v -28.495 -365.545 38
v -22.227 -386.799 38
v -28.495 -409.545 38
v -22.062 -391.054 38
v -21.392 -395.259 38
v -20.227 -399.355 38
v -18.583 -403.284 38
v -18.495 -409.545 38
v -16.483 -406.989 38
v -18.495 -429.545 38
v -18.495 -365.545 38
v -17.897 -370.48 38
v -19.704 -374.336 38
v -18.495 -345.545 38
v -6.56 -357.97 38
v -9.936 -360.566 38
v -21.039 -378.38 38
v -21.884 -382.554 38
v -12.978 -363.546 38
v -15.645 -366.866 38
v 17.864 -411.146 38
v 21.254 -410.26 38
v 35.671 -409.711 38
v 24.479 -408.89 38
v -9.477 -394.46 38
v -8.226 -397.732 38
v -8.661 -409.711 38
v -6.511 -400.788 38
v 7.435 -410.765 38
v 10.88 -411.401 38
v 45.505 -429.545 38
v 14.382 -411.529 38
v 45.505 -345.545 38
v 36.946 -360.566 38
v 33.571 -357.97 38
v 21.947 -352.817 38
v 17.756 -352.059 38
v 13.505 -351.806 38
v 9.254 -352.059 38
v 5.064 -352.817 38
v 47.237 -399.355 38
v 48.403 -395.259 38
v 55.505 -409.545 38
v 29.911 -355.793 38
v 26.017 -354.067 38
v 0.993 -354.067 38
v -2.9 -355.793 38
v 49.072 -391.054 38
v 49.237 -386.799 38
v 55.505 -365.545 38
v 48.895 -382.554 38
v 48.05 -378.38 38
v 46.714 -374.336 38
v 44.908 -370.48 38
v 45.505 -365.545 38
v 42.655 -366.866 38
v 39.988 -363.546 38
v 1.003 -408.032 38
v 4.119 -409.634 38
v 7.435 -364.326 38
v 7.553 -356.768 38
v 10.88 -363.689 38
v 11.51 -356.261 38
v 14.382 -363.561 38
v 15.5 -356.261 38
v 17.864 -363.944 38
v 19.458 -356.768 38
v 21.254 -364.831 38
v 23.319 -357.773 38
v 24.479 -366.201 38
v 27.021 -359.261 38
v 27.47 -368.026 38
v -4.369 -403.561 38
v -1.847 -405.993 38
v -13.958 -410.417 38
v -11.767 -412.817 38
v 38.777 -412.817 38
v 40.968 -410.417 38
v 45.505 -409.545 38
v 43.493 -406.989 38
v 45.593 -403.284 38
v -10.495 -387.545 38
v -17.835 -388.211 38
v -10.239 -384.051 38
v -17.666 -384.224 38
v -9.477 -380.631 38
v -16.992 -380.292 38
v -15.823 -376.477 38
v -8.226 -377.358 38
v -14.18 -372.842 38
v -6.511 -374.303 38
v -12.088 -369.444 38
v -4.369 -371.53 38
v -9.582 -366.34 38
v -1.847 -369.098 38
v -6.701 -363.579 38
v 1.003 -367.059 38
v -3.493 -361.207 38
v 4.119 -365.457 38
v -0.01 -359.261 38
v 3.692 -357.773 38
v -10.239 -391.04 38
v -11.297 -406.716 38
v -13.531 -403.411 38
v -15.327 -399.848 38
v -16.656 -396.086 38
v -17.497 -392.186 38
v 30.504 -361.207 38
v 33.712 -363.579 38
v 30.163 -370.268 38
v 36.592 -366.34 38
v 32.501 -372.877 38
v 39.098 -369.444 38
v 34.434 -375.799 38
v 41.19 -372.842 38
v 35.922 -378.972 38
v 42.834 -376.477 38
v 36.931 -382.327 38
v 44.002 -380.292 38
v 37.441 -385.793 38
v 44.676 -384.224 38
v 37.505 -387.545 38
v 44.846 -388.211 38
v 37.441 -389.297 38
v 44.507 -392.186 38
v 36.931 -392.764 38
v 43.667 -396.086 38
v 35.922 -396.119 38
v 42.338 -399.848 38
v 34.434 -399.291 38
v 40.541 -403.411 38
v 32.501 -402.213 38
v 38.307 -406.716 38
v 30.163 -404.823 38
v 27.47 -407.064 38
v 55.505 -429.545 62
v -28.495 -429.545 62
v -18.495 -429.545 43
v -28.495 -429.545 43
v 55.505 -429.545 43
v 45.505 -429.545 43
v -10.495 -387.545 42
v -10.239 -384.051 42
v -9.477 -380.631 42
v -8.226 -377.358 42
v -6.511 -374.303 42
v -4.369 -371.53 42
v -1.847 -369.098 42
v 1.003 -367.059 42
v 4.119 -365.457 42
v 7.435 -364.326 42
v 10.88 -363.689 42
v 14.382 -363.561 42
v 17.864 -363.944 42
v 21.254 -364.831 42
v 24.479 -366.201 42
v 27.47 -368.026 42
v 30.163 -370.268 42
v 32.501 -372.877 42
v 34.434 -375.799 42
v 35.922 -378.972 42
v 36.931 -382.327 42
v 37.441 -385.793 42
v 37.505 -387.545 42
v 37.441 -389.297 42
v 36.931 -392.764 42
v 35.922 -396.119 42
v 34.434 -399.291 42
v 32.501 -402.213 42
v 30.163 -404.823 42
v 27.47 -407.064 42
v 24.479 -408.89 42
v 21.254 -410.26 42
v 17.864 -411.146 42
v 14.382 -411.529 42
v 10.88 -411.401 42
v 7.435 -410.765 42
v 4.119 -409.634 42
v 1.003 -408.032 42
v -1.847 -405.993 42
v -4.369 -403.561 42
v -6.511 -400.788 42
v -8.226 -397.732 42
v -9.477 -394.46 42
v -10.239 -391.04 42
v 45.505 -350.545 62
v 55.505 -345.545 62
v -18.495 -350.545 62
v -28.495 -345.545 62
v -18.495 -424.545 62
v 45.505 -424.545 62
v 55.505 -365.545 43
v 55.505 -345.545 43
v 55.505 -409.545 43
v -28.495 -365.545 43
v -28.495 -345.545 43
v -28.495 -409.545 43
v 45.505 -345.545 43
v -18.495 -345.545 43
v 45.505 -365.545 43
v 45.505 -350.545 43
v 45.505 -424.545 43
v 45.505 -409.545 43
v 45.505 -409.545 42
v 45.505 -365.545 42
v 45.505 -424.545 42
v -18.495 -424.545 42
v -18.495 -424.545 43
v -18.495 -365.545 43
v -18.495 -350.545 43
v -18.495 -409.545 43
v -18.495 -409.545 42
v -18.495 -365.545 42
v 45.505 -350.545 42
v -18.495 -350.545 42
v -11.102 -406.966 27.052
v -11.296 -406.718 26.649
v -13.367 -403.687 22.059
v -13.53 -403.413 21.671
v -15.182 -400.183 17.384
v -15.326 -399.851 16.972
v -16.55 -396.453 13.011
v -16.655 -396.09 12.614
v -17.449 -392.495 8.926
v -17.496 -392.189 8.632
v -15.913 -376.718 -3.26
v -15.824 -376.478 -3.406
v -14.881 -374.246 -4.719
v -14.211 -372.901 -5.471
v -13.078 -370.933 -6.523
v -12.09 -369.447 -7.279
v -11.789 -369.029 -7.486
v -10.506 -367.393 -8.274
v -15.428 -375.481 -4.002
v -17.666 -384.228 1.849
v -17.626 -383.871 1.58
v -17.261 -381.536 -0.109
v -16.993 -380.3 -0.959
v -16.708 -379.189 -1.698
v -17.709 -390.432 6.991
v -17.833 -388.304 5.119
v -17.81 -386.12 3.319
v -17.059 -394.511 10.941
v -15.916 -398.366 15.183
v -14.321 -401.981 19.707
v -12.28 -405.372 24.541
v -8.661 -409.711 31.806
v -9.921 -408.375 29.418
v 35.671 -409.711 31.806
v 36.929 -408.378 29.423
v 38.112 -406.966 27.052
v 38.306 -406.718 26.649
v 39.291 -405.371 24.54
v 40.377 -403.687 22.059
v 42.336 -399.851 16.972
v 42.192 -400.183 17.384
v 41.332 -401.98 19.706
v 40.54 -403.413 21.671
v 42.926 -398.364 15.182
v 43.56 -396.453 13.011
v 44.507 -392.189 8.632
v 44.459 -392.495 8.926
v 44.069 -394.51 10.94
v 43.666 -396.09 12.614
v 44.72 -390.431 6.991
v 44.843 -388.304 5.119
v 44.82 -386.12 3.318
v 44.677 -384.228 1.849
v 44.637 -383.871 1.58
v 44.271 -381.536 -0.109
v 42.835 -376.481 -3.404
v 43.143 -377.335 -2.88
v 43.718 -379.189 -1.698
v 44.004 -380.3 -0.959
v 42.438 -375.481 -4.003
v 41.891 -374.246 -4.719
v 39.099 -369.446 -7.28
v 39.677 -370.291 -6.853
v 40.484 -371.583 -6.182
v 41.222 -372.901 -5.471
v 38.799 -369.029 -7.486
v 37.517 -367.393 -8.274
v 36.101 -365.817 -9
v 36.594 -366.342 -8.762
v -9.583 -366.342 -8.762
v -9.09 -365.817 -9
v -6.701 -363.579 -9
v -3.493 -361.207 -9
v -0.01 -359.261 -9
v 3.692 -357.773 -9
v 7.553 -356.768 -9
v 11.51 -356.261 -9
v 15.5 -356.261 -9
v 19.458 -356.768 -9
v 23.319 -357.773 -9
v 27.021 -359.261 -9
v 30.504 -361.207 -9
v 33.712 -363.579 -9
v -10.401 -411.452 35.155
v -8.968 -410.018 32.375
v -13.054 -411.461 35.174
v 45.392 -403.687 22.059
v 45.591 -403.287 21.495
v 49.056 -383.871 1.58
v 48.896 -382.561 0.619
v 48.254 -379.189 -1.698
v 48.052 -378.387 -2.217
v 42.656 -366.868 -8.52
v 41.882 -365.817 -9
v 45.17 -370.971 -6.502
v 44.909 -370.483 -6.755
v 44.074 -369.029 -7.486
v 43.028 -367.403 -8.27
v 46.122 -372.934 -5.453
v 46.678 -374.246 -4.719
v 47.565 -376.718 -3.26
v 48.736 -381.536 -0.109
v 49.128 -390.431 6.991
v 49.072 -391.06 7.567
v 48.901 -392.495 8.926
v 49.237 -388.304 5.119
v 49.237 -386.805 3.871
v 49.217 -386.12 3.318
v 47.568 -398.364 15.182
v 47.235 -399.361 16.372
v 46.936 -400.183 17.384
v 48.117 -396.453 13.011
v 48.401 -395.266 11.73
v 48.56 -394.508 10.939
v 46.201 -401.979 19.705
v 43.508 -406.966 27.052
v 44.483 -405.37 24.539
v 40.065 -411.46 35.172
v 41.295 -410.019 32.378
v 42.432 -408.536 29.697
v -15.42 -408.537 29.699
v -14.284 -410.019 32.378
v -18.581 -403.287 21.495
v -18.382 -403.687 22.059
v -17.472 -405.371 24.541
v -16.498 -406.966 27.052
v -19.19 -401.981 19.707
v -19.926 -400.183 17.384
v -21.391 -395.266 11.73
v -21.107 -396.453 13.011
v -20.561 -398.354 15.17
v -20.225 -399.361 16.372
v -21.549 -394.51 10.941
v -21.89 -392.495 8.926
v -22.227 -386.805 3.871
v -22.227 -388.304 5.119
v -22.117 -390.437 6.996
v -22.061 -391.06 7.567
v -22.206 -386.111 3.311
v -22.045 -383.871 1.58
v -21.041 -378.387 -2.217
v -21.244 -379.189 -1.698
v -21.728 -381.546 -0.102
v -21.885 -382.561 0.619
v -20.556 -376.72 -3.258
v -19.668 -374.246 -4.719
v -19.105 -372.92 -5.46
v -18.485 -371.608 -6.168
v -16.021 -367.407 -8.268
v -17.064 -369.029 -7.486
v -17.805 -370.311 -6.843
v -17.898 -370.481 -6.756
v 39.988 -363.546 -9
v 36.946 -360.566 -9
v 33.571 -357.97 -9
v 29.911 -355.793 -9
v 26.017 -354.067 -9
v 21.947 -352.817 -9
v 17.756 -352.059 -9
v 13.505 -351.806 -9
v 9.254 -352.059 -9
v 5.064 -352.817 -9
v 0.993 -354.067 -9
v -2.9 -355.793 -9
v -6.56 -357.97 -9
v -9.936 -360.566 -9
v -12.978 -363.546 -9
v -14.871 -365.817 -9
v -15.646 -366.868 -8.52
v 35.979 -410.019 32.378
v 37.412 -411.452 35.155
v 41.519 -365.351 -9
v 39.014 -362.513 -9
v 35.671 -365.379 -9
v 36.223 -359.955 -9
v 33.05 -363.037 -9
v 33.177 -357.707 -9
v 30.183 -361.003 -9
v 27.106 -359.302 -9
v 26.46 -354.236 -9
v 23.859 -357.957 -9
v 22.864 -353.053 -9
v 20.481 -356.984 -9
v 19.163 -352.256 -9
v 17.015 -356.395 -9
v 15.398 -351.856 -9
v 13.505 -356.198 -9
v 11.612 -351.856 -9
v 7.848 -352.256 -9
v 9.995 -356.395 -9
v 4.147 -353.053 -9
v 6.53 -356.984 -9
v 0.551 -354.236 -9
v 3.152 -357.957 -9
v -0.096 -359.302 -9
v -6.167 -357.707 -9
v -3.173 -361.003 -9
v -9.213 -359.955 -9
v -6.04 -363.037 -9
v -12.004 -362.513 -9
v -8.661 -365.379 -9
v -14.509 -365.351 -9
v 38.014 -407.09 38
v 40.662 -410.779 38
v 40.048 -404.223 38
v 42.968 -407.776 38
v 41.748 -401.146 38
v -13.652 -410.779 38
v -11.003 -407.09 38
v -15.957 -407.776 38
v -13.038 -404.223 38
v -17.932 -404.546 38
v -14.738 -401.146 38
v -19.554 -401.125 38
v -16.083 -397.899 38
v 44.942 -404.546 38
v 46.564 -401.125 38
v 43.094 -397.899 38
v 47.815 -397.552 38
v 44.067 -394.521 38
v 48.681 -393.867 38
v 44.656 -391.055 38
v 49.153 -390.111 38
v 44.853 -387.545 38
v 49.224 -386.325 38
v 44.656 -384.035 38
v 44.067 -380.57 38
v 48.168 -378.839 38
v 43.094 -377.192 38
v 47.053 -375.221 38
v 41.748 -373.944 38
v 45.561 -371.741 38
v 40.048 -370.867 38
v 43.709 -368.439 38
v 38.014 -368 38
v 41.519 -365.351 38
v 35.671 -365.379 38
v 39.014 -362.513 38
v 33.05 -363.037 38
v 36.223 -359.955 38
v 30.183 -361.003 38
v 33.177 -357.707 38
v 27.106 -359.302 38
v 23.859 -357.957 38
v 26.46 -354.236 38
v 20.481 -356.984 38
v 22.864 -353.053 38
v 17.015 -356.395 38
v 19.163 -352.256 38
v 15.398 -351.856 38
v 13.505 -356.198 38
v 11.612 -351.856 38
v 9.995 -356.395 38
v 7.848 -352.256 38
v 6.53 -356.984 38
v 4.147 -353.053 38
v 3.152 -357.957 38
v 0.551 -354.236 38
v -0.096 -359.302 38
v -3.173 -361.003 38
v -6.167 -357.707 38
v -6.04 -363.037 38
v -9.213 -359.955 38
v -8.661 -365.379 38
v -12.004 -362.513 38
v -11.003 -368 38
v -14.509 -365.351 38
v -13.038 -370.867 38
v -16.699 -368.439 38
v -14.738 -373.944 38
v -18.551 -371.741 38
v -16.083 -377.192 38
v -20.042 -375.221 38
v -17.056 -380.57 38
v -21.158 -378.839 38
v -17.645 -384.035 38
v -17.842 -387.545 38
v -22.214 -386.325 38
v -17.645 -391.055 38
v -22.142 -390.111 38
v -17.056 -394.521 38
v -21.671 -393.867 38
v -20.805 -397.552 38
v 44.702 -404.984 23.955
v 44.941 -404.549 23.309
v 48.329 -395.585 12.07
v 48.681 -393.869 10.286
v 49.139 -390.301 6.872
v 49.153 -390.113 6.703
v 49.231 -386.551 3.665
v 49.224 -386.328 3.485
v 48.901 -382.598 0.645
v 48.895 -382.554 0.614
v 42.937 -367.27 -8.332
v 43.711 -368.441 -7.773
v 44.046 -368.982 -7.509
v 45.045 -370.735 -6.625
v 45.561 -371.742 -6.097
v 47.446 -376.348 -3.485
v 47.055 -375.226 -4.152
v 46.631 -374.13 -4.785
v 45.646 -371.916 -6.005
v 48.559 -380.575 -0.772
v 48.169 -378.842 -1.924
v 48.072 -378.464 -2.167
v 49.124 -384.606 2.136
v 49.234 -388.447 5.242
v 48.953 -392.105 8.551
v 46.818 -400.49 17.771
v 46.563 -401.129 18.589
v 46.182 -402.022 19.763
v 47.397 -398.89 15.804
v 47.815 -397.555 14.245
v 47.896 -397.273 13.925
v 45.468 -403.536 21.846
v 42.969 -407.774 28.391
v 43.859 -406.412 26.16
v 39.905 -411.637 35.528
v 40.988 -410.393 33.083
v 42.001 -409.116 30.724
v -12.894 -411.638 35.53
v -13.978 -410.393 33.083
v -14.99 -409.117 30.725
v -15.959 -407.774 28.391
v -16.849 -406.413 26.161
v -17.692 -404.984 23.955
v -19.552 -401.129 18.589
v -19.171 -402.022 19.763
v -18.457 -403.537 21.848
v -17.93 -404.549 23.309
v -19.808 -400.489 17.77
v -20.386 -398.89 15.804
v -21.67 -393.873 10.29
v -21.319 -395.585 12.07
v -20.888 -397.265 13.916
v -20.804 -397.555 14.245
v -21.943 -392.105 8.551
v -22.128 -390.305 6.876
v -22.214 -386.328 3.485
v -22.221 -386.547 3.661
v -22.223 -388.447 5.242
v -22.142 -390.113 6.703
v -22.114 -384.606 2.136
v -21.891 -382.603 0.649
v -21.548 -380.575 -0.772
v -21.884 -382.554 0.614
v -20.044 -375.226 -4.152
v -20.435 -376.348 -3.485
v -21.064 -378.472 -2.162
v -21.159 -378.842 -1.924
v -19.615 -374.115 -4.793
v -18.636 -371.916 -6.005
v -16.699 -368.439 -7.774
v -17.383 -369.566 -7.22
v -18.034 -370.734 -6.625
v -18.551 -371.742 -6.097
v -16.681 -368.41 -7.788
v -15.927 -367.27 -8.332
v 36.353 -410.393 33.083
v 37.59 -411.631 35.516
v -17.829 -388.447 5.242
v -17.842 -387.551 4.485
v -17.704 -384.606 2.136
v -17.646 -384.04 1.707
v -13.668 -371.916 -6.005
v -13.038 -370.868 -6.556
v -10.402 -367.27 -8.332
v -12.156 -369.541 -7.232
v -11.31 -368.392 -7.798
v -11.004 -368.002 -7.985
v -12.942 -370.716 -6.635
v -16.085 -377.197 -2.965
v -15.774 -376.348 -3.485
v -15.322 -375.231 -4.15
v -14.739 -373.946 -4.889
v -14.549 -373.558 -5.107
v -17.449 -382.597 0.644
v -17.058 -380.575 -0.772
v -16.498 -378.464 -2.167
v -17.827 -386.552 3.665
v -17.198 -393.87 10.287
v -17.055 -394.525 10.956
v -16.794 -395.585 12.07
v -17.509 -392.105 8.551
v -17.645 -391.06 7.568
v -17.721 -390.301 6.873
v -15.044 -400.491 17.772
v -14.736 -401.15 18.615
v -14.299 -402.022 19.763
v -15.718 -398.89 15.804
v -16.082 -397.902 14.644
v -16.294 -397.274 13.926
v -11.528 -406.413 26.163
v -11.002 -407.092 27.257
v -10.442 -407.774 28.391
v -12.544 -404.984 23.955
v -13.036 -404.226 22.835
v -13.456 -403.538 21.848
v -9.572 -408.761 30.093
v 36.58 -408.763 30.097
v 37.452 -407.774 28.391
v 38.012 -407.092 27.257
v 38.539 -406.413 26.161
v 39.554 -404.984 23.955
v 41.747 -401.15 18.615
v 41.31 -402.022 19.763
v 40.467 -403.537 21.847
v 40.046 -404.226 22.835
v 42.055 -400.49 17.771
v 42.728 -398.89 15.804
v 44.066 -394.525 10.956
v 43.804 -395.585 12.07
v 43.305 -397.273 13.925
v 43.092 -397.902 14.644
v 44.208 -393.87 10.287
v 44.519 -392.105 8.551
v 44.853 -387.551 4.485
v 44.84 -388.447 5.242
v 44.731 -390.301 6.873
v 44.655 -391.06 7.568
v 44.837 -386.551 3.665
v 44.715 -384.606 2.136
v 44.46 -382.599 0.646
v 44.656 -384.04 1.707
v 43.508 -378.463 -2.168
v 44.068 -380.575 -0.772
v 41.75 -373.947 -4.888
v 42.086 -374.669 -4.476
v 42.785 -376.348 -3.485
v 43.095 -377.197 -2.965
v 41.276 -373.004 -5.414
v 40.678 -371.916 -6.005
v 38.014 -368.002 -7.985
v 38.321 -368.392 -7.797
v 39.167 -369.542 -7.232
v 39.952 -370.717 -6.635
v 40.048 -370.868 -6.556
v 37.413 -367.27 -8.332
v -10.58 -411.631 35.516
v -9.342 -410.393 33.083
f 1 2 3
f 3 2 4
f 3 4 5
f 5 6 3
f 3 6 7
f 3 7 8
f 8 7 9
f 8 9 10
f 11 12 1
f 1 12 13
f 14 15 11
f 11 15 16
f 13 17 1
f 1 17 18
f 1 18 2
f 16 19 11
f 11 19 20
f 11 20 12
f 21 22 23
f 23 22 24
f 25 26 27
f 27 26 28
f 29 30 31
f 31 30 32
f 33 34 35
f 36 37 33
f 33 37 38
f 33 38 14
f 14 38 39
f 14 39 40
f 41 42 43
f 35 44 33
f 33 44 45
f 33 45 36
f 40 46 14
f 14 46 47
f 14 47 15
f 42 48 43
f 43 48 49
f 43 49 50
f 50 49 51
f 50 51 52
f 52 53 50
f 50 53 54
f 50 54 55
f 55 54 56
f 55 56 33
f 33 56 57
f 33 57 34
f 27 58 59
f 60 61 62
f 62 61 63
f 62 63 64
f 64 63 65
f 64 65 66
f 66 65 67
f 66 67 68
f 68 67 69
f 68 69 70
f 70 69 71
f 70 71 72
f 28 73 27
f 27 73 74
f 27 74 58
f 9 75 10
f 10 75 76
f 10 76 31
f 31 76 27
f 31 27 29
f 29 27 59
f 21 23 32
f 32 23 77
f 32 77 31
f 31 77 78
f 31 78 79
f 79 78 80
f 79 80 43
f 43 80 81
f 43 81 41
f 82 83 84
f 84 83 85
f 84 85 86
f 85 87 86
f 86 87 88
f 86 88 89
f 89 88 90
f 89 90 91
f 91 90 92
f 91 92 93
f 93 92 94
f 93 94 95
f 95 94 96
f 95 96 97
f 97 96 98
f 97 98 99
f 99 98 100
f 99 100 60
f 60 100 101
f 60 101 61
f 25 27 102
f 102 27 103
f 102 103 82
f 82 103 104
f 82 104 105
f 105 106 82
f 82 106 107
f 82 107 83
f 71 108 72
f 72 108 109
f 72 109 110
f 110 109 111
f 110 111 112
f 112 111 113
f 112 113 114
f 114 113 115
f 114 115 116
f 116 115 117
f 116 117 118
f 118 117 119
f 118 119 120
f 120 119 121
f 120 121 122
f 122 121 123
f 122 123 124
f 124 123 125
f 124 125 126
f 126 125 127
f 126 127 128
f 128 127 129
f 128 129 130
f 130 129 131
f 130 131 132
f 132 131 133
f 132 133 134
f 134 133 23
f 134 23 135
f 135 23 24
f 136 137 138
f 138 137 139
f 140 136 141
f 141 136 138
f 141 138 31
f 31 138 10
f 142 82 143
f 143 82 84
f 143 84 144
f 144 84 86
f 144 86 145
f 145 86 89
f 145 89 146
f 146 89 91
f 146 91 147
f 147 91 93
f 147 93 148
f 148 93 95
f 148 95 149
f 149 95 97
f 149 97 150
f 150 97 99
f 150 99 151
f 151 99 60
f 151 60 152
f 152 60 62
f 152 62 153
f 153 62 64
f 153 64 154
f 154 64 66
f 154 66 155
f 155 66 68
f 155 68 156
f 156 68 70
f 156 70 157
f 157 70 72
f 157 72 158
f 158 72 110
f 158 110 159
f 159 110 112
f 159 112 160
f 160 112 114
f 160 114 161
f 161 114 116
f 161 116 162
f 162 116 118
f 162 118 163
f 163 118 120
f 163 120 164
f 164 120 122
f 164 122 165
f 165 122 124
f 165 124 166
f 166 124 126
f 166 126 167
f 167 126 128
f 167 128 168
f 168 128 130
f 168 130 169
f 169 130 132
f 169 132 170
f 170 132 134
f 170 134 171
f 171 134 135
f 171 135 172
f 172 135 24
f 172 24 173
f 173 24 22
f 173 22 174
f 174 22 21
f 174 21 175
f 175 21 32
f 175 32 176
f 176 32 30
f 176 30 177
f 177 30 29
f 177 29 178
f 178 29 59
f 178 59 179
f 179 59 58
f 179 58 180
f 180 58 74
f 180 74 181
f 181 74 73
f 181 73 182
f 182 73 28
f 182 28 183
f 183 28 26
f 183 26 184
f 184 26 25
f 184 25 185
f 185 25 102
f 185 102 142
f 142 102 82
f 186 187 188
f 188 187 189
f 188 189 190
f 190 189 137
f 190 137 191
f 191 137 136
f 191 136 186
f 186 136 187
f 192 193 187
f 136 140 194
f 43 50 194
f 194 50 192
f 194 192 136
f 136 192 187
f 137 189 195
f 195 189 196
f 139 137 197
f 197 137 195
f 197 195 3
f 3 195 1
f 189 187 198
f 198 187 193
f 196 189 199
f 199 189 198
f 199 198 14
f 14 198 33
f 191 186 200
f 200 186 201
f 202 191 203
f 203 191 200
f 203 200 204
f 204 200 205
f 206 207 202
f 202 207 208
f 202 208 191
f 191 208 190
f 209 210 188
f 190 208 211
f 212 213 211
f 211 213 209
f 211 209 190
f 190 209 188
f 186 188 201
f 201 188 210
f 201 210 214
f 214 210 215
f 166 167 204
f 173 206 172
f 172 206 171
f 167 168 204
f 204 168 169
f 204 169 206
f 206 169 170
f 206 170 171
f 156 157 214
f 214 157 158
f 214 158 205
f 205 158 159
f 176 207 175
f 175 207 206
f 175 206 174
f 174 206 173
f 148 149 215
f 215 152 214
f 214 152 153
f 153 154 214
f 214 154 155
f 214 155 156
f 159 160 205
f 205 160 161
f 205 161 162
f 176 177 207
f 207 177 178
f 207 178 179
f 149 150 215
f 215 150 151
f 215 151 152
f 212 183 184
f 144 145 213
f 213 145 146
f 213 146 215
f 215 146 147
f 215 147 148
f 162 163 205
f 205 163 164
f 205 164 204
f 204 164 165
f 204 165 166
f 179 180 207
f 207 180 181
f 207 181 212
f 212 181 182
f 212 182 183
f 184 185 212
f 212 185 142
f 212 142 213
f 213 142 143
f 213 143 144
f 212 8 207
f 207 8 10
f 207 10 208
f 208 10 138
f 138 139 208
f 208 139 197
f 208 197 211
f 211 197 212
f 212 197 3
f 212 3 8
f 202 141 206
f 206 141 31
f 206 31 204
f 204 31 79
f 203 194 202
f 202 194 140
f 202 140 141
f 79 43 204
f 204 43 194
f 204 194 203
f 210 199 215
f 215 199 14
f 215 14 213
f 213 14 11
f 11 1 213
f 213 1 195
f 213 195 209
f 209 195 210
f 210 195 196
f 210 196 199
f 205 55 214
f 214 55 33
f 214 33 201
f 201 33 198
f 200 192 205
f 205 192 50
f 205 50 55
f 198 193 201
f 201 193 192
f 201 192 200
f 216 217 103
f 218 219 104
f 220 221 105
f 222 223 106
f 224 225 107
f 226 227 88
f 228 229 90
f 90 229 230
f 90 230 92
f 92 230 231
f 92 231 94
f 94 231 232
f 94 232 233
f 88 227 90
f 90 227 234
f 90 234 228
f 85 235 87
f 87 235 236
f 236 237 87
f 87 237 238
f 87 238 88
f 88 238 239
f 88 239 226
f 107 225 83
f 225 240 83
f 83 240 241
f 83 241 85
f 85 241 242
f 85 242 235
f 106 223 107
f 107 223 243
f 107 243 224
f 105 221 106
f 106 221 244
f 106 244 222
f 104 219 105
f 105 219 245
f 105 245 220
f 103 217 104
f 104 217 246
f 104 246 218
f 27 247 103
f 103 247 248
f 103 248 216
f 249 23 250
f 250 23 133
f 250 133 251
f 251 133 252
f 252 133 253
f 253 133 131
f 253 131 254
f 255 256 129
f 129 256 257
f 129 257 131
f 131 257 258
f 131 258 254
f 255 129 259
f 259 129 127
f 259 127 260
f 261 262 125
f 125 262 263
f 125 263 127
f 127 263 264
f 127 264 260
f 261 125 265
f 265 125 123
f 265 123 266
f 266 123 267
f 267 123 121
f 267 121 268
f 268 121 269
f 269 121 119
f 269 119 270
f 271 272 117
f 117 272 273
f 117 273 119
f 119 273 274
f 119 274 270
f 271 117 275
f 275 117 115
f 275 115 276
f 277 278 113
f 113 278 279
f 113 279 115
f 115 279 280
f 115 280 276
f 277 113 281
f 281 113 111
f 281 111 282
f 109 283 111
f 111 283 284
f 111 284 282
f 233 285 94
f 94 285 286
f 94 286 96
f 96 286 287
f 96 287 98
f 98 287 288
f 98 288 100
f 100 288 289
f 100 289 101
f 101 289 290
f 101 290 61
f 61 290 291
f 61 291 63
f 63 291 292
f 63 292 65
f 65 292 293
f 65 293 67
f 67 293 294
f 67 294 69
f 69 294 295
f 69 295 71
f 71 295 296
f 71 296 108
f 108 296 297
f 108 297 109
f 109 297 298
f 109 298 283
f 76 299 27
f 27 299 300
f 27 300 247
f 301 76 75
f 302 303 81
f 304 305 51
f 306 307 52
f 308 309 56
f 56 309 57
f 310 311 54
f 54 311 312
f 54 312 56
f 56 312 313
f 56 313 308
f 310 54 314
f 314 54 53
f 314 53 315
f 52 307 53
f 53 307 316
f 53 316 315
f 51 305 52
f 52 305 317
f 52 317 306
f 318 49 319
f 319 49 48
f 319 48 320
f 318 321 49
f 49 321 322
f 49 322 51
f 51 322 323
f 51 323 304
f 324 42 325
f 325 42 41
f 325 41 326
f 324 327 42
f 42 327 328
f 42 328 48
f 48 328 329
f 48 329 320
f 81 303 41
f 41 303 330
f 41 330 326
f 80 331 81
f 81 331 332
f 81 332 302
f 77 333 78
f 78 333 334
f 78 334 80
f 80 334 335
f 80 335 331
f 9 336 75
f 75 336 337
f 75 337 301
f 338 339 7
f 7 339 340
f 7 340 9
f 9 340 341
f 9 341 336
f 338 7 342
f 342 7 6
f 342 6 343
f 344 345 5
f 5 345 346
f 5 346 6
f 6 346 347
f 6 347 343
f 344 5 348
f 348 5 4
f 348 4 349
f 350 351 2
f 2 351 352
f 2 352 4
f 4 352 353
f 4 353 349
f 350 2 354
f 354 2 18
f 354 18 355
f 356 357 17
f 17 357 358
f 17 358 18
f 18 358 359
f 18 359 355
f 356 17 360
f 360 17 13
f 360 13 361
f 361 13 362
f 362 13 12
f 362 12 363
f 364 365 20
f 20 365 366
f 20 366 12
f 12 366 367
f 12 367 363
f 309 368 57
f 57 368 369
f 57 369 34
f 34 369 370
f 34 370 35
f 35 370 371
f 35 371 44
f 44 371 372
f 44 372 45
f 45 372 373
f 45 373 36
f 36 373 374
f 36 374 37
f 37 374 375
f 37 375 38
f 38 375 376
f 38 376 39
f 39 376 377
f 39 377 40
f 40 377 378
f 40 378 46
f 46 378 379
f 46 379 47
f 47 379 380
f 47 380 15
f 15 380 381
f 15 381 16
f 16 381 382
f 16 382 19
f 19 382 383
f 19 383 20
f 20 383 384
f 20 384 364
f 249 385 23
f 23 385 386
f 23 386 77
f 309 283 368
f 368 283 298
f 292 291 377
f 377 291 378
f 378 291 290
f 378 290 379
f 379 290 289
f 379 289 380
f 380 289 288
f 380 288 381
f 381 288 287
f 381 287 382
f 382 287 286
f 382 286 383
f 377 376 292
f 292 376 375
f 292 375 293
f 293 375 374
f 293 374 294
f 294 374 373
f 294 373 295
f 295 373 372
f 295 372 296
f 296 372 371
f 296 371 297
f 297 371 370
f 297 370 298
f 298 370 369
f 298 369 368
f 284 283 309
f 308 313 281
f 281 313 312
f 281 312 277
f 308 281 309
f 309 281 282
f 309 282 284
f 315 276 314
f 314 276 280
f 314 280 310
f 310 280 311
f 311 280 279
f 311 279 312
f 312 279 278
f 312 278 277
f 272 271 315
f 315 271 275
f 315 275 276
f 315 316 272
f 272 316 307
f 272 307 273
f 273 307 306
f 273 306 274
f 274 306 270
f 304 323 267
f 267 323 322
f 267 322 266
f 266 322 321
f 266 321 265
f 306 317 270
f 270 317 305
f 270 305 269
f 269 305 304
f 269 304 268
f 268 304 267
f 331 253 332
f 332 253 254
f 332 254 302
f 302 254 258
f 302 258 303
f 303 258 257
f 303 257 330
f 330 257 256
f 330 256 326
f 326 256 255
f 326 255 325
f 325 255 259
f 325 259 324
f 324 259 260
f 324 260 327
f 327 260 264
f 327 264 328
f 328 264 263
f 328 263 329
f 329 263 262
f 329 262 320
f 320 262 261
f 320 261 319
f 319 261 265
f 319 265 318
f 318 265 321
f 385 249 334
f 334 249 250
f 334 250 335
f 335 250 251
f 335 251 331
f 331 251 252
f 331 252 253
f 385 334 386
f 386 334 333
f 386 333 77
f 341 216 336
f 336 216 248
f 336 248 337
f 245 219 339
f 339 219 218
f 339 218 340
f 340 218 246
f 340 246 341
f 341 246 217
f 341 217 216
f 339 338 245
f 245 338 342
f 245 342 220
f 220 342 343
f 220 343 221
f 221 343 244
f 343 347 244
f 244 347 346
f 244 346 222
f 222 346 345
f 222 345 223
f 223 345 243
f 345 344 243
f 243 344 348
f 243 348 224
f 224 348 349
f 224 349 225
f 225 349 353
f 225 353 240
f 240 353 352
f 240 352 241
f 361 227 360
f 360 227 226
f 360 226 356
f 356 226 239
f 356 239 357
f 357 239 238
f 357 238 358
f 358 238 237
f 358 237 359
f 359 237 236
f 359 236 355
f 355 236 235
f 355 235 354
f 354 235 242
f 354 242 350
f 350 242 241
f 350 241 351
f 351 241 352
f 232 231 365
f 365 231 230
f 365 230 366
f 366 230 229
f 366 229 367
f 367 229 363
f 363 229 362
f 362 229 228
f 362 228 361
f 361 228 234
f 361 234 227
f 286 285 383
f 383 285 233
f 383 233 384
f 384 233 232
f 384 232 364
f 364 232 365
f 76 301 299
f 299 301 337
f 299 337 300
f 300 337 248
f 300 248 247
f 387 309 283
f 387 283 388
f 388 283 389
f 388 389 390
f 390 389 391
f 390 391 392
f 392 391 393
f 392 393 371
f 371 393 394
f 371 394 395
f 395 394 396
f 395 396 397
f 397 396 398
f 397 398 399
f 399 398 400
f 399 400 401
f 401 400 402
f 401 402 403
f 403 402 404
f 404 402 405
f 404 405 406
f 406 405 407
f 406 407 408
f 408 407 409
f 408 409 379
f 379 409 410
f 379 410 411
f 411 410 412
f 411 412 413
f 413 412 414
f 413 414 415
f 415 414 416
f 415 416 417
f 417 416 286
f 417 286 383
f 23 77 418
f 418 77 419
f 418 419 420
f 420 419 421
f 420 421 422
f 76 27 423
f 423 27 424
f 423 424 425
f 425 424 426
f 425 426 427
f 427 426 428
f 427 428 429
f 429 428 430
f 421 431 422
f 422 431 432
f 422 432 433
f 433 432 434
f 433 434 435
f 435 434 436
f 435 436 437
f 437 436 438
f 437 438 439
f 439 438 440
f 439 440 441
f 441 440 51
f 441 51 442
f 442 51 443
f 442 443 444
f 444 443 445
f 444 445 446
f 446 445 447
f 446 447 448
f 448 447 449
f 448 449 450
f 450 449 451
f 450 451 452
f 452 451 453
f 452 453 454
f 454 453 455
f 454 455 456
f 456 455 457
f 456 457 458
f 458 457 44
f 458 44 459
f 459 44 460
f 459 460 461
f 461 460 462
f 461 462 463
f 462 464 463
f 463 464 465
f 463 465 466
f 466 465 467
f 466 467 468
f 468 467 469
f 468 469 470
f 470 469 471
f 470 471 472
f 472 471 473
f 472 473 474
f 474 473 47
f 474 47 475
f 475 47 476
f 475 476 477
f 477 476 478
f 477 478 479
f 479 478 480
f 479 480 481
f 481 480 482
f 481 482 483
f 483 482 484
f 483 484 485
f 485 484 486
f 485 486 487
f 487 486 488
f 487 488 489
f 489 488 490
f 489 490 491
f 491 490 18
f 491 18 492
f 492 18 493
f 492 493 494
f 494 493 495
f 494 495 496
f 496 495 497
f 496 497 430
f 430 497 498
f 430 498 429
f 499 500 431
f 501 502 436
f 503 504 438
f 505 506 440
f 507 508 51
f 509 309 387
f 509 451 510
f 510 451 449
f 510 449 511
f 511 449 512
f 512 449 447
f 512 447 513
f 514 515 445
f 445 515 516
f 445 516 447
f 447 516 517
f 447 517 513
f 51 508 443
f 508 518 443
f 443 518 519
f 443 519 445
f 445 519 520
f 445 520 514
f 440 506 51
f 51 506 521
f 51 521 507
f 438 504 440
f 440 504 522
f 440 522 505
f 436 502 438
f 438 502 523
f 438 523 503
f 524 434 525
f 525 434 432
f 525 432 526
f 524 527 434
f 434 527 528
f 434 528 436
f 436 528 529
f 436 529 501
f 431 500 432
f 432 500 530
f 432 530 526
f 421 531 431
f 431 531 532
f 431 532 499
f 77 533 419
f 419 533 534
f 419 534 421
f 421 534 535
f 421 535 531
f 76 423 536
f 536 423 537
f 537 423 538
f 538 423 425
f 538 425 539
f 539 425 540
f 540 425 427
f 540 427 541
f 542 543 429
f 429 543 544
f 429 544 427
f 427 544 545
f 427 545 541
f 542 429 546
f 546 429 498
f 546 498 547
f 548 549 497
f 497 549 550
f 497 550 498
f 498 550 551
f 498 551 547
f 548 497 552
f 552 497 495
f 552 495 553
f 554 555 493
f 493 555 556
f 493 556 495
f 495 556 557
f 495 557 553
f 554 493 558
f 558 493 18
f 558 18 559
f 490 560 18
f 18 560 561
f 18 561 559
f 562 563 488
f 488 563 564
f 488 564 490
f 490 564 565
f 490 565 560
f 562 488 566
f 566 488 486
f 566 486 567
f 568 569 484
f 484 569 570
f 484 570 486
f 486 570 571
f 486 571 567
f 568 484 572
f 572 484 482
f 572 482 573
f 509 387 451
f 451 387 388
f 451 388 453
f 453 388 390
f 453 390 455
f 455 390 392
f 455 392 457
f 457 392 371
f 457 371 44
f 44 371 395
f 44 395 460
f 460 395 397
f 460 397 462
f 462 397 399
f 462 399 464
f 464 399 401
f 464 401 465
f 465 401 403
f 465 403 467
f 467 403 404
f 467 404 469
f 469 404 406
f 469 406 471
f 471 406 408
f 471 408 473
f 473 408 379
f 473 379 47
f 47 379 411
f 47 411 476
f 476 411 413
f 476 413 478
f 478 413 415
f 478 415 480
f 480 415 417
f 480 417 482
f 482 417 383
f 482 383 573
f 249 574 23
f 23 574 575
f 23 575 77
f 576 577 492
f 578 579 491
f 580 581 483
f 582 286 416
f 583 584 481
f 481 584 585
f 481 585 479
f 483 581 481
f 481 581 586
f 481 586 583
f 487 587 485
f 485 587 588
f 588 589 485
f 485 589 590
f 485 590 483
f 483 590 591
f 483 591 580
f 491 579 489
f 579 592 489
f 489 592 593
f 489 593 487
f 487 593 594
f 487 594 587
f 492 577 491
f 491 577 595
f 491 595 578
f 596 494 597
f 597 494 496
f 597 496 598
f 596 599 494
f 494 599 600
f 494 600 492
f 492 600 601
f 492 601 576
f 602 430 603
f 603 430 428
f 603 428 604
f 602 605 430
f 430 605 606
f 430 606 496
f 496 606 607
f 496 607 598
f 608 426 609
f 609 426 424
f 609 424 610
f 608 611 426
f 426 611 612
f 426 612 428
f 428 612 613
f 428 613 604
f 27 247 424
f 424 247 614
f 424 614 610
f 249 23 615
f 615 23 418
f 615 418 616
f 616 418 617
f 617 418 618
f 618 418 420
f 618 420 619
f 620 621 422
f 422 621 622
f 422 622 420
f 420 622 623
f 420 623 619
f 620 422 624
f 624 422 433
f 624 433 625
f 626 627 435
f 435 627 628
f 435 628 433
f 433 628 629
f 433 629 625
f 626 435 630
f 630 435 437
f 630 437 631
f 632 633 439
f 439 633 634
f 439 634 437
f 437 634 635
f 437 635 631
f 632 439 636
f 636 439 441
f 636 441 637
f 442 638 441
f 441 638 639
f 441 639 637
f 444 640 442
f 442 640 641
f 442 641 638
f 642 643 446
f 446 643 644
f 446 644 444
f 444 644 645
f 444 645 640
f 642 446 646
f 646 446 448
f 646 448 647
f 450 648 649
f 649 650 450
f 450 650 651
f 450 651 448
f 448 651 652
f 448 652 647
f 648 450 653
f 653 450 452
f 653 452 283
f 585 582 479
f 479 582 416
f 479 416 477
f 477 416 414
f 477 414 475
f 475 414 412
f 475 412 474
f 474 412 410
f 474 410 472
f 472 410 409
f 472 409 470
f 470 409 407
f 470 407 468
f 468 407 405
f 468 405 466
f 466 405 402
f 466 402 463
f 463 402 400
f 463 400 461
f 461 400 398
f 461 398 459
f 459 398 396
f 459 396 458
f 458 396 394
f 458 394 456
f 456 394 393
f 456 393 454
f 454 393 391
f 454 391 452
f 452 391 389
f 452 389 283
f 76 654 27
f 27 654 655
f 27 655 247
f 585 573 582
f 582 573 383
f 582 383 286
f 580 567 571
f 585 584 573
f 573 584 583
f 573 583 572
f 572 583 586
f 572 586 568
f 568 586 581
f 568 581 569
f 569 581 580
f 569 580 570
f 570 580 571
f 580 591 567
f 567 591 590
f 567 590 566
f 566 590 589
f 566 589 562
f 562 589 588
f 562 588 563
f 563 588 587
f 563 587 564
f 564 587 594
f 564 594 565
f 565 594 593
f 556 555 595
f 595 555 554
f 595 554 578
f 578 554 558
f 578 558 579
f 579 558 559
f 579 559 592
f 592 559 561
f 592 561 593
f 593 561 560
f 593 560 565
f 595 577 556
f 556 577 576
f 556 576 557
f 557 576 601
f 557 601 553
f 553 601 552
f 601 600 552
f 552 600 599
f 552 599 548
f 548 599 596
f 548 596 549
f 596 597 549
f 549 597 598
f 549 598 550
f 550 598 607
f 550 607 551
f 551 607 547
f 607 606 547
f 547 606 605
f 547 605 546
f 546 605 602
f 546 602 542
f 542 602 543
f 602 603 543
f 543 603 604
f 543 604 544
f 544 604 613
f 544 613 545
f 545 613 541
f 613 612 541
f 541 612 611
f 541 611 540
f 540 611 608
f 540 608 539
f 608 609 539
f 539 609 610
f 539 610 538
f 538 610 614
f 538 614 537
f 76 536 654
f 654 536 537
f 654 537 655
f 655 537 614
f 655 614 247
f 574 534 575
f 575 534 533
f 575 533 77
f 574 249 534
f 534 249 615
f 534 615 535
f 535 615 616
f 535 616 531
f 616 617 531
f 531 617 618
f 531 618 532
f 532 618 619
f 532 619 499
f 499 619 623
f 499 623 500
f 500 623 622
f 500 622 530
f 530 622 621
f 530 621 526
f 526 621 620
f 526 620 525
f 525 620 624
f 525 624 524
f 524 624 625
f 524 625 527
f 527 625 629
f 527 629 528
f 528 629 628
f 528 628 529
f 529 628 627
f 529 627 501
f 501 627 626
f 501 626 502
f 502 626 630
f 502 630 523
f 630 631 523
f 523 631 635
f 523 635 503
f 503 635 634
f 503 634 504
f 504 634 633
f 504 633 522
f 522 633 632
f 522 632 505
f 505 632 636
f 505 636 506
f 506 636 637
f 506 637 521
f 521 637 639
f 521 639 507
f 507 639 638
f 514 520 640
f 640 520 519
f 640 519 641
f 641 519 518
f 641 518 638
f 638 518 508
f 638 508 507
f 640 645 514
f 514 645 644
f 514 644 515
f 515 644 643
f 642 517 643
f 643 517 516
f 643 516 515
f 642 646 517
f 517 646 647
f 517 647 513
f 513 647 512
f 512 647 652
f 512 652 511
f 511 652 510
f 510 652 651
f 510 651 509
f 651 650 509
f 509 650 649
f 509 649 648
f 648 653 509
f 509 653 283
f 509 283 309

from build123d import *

# Parameters (mm, degrees)
SKETCH2_W           = 350
SKETCH2_H           = 1050
SKETCH2_R           = 100
BOSS_EXTRUDE2_DEPTH = 100
SCALE1_SCALE        = 0.24
SKETCH6_W           = 84
SKETCH6_H           = 168
CUT_EXTRUDE3_DEPTH  = 80
SKETCH11_W          = 64
SKETCH11_H          = 74
CUT_EXTRUDE8_DEPTH  = 20
SKETCH12_W          = 10
SKETCH12_H          = 5
BOSS_EXTRUDE6_DEPTH = 20
SKETCH13_W          = 10
SKETCH13_H          = 5
BOSS_EXTRUDE7_DEPTH = 20
SKETCH14_W          = 10
SKETCH14_H          = 5
CUT_EXTRUDE9_DEPTH  = 40
SKETCH15_W          = 10
SKETCH15_H          = 5
CUT_EXTRUDE10_DEPTH = 40
SKETCH16_W          = 10
SKETCH16_H          = 20
CUT_EXTRUDE11_DEPTH = 5
SKETCH17_W          = 10
SKETCH17_H          = 20
CUT_EXTRUDE12_DEPTH = 5
BOSS_EXTRUDE9_DEPTH = 47
SWEEP3_START        = -9
SWEEP3_DEPTH        = 47
CUT_EXTRUDE13_DEPTH = 82


# Read off the part's stored shape, not the designer's step: Sweep3
with BuildPart() as part:
    # Sketch2 → Boss-Extrude2 (new body)
    with BuildSketch(Plane.XY):
        with Locations((13.505164405, -303.545290931)):
            Rectangle(SKETCH2_W, SKETCH2_H)
        with Locations((13.505164405, 46.454709069)):
            Circle(SKETCH2_R, mode=Mode.SUBTRACT)
        with Locations((13.505164405, -303.545290931)):
            Circle(SKETCH2_R, mode=Mode.SUBTRACT)
        with Locations((13.505164405, -653.545290931)):
            Circle(SKETCH2_R, mode=Mode.SUBTRACT)
    extrude(amount=BOSS_EXTRUDE2_DEPTH)


with BuildPart() as part_1:
    # Scale1: scaled about (13.505164405, -303.545290931, 50)
    add(part.part.scale(SCALE1_SCALE).moved(Location((10.263924948, -230.694421108, 38))))

    # Sketch6 → Cut-Extrude3 (cut)
    with BuildSketch(Plane.XY.offset(62)):
        with Locations((13.505164405, -261.545290931)):
            Rectangle(SKETCH6_W, SKETCH6_H)
    extrude(amount=-CUT_EXTRUDE3_DEPTH, mode=Mode.SUBTRACT)

    # Sketch11 → Cut-Extrude8 (cut)
    with BuildSketch(Plane.XY.offset(62)):
        with Locations((13.505164405, -387.545290931)):
            Rectangle(SKETCH11_W, SKETCH11_H)
    extrude(amount=-CUT_EXTRUDE8_DEPTH, mode=Mode.SUBTRACT)

    # Sketch12 → Boss-Extrude6 (add)
    with BuildSketch(Plane(origin=(0, -429.545290931, 0), x_dir=(-1, 0, 0), z_dir=(0, -1, 0))):
        with Locations((23.494835595, -40.5)):
            Rectangle(SKETCH12_W, SKETCH12_H)
    extrude(amount=BOSS_EXTRUDE6_DEPTH)

    # Sketch13 → Boss-Extrude7 (add)
    with BuildSketch(Plane(origin=(0, -429.545290931, 0), x_dir=(-1, 0, 0), z_dir=(0, -1, 0))):
        with Locations((-50.505164405, -40.5)):
            Rectangle(SKETCH13_W, SKETCH13_H)
    extrude(amount=BOSS_EXTRUDE7_DEPTH)

    # Sketch14 → Cut-Extrude9 (cut)
    with BuildSketch(Plane.XZ.offset(449.545290931)):
        with Locations((-23.494835595, 40.5)):
            Rectangle(SKETCH14_W, SKETCH14_H)
    extrude(amount=-CUT_EXTRUDE9_DEPTH, mode=Mode.SUBTRACT)

    # Sketch15 → Cut-Extrude10 (cut)
    with BuildSketch(Plane(origin=(0, -449.545290931, 0), x_dir=(-1, 0, 0), z_dir=(0, -1, 0))):
        with Locations((-50.505164405, -40.5)):
            Rectangle(SKETCH15_W, SKETCH15_H)
    extrude(amount=-CUT_EXTRUDE10_DEPTH, mode=Mode.SUBTRACT)

    # Sketch16 → Cut-Extrude11 (cut)
    with BuildSketch(Plane(origin=(0, 0, 38), x_dir=(-1, 0, 0), z_dir=(0, 0, -1))):
        with Locations((23.494835595, -355.545290931)):
            Rectangle(SKETCH16_W, SKETCH16_H)
    extrude(amount=-CUT_EXTRUDE11_DEPTH, mode=Mode.SUBTRACT)

    # Sketch17 → Cut-Extrude12 (cut)
    with BuildSketch(Plane(origin=(0, 0, 38), x_dir=(-1, 0, 0), z_dir=(0, 0, -1))):
        with Locations((-50.505164405, -355.545290931)):
            Rectangle(SKETCH17_W, SKETCH17_H)
    extrude(amount=-CUT_EXTRUDE12_DEPTH, mode=Mode.SUBTRACT)

    # Sketch18 → Boss-Extrude9 (add)
    with BuildSketch(Plane(origin=(0, 0, 38), x_dir=(-1, 0, 0), z_dir=(0, 0, -1))):
        with BuildLine():
            Line((-35.671185106, -409.711311632), (-38.7770157, -412.817142227))
            ThreePointArc((-38.7770157, -412.817142227), (-13.505164405, -351.805496082), (11.766686891, -412.817142227))
            Line((11.766686891, -412.817142227), (8.660856297, -409.711311632))
            ThreePointArc((8.660856297, -409.711311632), (-13.505164405, -356.197803831), (-35.671185106, -409.711311632))
        make_face()
    extrude(amount=BOSS_EXTRUDE9_DEPTH)


with BuildPart() as body_2:
    # Sweep3 outline → Sweep3 (new body)
    with BuildSketch(Plane.XY.offset(SWEEP3_START)):
        with BuildLine():
            Line((35.671185106, -409.711311632), (38.7770157, -412.817142227))
            ThreePointArc((38.7770157, -412.817142227), (13.505164405, -351.805496082), (-11.766686891, -412.817142227))
            Line((-11.766686891, -412.817142227), (-8.660856297, -409.711311632))
            ThreePointArc((-8.660856297, -409.711311632), (13.505164404, -356.197803831), (35.671185106, -409.711311632))
        make_face()
    extrude(amount=SWEEP3_DEPTH)


with BuildPart() as cut_extrude13_tool:
    # Sketch27 → Cut-Extrude13 (new body)
    with BuildSketch(Plane.ZY.offset(28.494835595)):
        with BuildLine():
            Line((38, -412.817142227), (-9, -412.817142227))
            Line((-9, -412.817142227), (-9, -365.817142227))
            add(Edge.make_bspline(
                [(-9, -365.817142227), (5.370162337, -397.723377267), (38, -412.817142227)],
                knots=[0, 0, 0, 1, 1, 1], degree=2))
        make_face()
    extrude(amount=-CUT_EXTRUDE13_DEPTH)


with BuildPart() as part_2:
    add(part_1.part)

    # Cut-Extrude13: cut by cut_extrude13_tool
    add(cut_extrude13_tool.part, mode=Mode.SUBTRACT)


with BuildPart() as body_2_1:
    add(body_2.part)

    # Cut-Extrude13: cut by cut_extrude13_tool
    add(cut_extrude13_tool.part, mode=Mode.SUBTRACT)


solid = Compound([part_2.part, body_2_1.part])
